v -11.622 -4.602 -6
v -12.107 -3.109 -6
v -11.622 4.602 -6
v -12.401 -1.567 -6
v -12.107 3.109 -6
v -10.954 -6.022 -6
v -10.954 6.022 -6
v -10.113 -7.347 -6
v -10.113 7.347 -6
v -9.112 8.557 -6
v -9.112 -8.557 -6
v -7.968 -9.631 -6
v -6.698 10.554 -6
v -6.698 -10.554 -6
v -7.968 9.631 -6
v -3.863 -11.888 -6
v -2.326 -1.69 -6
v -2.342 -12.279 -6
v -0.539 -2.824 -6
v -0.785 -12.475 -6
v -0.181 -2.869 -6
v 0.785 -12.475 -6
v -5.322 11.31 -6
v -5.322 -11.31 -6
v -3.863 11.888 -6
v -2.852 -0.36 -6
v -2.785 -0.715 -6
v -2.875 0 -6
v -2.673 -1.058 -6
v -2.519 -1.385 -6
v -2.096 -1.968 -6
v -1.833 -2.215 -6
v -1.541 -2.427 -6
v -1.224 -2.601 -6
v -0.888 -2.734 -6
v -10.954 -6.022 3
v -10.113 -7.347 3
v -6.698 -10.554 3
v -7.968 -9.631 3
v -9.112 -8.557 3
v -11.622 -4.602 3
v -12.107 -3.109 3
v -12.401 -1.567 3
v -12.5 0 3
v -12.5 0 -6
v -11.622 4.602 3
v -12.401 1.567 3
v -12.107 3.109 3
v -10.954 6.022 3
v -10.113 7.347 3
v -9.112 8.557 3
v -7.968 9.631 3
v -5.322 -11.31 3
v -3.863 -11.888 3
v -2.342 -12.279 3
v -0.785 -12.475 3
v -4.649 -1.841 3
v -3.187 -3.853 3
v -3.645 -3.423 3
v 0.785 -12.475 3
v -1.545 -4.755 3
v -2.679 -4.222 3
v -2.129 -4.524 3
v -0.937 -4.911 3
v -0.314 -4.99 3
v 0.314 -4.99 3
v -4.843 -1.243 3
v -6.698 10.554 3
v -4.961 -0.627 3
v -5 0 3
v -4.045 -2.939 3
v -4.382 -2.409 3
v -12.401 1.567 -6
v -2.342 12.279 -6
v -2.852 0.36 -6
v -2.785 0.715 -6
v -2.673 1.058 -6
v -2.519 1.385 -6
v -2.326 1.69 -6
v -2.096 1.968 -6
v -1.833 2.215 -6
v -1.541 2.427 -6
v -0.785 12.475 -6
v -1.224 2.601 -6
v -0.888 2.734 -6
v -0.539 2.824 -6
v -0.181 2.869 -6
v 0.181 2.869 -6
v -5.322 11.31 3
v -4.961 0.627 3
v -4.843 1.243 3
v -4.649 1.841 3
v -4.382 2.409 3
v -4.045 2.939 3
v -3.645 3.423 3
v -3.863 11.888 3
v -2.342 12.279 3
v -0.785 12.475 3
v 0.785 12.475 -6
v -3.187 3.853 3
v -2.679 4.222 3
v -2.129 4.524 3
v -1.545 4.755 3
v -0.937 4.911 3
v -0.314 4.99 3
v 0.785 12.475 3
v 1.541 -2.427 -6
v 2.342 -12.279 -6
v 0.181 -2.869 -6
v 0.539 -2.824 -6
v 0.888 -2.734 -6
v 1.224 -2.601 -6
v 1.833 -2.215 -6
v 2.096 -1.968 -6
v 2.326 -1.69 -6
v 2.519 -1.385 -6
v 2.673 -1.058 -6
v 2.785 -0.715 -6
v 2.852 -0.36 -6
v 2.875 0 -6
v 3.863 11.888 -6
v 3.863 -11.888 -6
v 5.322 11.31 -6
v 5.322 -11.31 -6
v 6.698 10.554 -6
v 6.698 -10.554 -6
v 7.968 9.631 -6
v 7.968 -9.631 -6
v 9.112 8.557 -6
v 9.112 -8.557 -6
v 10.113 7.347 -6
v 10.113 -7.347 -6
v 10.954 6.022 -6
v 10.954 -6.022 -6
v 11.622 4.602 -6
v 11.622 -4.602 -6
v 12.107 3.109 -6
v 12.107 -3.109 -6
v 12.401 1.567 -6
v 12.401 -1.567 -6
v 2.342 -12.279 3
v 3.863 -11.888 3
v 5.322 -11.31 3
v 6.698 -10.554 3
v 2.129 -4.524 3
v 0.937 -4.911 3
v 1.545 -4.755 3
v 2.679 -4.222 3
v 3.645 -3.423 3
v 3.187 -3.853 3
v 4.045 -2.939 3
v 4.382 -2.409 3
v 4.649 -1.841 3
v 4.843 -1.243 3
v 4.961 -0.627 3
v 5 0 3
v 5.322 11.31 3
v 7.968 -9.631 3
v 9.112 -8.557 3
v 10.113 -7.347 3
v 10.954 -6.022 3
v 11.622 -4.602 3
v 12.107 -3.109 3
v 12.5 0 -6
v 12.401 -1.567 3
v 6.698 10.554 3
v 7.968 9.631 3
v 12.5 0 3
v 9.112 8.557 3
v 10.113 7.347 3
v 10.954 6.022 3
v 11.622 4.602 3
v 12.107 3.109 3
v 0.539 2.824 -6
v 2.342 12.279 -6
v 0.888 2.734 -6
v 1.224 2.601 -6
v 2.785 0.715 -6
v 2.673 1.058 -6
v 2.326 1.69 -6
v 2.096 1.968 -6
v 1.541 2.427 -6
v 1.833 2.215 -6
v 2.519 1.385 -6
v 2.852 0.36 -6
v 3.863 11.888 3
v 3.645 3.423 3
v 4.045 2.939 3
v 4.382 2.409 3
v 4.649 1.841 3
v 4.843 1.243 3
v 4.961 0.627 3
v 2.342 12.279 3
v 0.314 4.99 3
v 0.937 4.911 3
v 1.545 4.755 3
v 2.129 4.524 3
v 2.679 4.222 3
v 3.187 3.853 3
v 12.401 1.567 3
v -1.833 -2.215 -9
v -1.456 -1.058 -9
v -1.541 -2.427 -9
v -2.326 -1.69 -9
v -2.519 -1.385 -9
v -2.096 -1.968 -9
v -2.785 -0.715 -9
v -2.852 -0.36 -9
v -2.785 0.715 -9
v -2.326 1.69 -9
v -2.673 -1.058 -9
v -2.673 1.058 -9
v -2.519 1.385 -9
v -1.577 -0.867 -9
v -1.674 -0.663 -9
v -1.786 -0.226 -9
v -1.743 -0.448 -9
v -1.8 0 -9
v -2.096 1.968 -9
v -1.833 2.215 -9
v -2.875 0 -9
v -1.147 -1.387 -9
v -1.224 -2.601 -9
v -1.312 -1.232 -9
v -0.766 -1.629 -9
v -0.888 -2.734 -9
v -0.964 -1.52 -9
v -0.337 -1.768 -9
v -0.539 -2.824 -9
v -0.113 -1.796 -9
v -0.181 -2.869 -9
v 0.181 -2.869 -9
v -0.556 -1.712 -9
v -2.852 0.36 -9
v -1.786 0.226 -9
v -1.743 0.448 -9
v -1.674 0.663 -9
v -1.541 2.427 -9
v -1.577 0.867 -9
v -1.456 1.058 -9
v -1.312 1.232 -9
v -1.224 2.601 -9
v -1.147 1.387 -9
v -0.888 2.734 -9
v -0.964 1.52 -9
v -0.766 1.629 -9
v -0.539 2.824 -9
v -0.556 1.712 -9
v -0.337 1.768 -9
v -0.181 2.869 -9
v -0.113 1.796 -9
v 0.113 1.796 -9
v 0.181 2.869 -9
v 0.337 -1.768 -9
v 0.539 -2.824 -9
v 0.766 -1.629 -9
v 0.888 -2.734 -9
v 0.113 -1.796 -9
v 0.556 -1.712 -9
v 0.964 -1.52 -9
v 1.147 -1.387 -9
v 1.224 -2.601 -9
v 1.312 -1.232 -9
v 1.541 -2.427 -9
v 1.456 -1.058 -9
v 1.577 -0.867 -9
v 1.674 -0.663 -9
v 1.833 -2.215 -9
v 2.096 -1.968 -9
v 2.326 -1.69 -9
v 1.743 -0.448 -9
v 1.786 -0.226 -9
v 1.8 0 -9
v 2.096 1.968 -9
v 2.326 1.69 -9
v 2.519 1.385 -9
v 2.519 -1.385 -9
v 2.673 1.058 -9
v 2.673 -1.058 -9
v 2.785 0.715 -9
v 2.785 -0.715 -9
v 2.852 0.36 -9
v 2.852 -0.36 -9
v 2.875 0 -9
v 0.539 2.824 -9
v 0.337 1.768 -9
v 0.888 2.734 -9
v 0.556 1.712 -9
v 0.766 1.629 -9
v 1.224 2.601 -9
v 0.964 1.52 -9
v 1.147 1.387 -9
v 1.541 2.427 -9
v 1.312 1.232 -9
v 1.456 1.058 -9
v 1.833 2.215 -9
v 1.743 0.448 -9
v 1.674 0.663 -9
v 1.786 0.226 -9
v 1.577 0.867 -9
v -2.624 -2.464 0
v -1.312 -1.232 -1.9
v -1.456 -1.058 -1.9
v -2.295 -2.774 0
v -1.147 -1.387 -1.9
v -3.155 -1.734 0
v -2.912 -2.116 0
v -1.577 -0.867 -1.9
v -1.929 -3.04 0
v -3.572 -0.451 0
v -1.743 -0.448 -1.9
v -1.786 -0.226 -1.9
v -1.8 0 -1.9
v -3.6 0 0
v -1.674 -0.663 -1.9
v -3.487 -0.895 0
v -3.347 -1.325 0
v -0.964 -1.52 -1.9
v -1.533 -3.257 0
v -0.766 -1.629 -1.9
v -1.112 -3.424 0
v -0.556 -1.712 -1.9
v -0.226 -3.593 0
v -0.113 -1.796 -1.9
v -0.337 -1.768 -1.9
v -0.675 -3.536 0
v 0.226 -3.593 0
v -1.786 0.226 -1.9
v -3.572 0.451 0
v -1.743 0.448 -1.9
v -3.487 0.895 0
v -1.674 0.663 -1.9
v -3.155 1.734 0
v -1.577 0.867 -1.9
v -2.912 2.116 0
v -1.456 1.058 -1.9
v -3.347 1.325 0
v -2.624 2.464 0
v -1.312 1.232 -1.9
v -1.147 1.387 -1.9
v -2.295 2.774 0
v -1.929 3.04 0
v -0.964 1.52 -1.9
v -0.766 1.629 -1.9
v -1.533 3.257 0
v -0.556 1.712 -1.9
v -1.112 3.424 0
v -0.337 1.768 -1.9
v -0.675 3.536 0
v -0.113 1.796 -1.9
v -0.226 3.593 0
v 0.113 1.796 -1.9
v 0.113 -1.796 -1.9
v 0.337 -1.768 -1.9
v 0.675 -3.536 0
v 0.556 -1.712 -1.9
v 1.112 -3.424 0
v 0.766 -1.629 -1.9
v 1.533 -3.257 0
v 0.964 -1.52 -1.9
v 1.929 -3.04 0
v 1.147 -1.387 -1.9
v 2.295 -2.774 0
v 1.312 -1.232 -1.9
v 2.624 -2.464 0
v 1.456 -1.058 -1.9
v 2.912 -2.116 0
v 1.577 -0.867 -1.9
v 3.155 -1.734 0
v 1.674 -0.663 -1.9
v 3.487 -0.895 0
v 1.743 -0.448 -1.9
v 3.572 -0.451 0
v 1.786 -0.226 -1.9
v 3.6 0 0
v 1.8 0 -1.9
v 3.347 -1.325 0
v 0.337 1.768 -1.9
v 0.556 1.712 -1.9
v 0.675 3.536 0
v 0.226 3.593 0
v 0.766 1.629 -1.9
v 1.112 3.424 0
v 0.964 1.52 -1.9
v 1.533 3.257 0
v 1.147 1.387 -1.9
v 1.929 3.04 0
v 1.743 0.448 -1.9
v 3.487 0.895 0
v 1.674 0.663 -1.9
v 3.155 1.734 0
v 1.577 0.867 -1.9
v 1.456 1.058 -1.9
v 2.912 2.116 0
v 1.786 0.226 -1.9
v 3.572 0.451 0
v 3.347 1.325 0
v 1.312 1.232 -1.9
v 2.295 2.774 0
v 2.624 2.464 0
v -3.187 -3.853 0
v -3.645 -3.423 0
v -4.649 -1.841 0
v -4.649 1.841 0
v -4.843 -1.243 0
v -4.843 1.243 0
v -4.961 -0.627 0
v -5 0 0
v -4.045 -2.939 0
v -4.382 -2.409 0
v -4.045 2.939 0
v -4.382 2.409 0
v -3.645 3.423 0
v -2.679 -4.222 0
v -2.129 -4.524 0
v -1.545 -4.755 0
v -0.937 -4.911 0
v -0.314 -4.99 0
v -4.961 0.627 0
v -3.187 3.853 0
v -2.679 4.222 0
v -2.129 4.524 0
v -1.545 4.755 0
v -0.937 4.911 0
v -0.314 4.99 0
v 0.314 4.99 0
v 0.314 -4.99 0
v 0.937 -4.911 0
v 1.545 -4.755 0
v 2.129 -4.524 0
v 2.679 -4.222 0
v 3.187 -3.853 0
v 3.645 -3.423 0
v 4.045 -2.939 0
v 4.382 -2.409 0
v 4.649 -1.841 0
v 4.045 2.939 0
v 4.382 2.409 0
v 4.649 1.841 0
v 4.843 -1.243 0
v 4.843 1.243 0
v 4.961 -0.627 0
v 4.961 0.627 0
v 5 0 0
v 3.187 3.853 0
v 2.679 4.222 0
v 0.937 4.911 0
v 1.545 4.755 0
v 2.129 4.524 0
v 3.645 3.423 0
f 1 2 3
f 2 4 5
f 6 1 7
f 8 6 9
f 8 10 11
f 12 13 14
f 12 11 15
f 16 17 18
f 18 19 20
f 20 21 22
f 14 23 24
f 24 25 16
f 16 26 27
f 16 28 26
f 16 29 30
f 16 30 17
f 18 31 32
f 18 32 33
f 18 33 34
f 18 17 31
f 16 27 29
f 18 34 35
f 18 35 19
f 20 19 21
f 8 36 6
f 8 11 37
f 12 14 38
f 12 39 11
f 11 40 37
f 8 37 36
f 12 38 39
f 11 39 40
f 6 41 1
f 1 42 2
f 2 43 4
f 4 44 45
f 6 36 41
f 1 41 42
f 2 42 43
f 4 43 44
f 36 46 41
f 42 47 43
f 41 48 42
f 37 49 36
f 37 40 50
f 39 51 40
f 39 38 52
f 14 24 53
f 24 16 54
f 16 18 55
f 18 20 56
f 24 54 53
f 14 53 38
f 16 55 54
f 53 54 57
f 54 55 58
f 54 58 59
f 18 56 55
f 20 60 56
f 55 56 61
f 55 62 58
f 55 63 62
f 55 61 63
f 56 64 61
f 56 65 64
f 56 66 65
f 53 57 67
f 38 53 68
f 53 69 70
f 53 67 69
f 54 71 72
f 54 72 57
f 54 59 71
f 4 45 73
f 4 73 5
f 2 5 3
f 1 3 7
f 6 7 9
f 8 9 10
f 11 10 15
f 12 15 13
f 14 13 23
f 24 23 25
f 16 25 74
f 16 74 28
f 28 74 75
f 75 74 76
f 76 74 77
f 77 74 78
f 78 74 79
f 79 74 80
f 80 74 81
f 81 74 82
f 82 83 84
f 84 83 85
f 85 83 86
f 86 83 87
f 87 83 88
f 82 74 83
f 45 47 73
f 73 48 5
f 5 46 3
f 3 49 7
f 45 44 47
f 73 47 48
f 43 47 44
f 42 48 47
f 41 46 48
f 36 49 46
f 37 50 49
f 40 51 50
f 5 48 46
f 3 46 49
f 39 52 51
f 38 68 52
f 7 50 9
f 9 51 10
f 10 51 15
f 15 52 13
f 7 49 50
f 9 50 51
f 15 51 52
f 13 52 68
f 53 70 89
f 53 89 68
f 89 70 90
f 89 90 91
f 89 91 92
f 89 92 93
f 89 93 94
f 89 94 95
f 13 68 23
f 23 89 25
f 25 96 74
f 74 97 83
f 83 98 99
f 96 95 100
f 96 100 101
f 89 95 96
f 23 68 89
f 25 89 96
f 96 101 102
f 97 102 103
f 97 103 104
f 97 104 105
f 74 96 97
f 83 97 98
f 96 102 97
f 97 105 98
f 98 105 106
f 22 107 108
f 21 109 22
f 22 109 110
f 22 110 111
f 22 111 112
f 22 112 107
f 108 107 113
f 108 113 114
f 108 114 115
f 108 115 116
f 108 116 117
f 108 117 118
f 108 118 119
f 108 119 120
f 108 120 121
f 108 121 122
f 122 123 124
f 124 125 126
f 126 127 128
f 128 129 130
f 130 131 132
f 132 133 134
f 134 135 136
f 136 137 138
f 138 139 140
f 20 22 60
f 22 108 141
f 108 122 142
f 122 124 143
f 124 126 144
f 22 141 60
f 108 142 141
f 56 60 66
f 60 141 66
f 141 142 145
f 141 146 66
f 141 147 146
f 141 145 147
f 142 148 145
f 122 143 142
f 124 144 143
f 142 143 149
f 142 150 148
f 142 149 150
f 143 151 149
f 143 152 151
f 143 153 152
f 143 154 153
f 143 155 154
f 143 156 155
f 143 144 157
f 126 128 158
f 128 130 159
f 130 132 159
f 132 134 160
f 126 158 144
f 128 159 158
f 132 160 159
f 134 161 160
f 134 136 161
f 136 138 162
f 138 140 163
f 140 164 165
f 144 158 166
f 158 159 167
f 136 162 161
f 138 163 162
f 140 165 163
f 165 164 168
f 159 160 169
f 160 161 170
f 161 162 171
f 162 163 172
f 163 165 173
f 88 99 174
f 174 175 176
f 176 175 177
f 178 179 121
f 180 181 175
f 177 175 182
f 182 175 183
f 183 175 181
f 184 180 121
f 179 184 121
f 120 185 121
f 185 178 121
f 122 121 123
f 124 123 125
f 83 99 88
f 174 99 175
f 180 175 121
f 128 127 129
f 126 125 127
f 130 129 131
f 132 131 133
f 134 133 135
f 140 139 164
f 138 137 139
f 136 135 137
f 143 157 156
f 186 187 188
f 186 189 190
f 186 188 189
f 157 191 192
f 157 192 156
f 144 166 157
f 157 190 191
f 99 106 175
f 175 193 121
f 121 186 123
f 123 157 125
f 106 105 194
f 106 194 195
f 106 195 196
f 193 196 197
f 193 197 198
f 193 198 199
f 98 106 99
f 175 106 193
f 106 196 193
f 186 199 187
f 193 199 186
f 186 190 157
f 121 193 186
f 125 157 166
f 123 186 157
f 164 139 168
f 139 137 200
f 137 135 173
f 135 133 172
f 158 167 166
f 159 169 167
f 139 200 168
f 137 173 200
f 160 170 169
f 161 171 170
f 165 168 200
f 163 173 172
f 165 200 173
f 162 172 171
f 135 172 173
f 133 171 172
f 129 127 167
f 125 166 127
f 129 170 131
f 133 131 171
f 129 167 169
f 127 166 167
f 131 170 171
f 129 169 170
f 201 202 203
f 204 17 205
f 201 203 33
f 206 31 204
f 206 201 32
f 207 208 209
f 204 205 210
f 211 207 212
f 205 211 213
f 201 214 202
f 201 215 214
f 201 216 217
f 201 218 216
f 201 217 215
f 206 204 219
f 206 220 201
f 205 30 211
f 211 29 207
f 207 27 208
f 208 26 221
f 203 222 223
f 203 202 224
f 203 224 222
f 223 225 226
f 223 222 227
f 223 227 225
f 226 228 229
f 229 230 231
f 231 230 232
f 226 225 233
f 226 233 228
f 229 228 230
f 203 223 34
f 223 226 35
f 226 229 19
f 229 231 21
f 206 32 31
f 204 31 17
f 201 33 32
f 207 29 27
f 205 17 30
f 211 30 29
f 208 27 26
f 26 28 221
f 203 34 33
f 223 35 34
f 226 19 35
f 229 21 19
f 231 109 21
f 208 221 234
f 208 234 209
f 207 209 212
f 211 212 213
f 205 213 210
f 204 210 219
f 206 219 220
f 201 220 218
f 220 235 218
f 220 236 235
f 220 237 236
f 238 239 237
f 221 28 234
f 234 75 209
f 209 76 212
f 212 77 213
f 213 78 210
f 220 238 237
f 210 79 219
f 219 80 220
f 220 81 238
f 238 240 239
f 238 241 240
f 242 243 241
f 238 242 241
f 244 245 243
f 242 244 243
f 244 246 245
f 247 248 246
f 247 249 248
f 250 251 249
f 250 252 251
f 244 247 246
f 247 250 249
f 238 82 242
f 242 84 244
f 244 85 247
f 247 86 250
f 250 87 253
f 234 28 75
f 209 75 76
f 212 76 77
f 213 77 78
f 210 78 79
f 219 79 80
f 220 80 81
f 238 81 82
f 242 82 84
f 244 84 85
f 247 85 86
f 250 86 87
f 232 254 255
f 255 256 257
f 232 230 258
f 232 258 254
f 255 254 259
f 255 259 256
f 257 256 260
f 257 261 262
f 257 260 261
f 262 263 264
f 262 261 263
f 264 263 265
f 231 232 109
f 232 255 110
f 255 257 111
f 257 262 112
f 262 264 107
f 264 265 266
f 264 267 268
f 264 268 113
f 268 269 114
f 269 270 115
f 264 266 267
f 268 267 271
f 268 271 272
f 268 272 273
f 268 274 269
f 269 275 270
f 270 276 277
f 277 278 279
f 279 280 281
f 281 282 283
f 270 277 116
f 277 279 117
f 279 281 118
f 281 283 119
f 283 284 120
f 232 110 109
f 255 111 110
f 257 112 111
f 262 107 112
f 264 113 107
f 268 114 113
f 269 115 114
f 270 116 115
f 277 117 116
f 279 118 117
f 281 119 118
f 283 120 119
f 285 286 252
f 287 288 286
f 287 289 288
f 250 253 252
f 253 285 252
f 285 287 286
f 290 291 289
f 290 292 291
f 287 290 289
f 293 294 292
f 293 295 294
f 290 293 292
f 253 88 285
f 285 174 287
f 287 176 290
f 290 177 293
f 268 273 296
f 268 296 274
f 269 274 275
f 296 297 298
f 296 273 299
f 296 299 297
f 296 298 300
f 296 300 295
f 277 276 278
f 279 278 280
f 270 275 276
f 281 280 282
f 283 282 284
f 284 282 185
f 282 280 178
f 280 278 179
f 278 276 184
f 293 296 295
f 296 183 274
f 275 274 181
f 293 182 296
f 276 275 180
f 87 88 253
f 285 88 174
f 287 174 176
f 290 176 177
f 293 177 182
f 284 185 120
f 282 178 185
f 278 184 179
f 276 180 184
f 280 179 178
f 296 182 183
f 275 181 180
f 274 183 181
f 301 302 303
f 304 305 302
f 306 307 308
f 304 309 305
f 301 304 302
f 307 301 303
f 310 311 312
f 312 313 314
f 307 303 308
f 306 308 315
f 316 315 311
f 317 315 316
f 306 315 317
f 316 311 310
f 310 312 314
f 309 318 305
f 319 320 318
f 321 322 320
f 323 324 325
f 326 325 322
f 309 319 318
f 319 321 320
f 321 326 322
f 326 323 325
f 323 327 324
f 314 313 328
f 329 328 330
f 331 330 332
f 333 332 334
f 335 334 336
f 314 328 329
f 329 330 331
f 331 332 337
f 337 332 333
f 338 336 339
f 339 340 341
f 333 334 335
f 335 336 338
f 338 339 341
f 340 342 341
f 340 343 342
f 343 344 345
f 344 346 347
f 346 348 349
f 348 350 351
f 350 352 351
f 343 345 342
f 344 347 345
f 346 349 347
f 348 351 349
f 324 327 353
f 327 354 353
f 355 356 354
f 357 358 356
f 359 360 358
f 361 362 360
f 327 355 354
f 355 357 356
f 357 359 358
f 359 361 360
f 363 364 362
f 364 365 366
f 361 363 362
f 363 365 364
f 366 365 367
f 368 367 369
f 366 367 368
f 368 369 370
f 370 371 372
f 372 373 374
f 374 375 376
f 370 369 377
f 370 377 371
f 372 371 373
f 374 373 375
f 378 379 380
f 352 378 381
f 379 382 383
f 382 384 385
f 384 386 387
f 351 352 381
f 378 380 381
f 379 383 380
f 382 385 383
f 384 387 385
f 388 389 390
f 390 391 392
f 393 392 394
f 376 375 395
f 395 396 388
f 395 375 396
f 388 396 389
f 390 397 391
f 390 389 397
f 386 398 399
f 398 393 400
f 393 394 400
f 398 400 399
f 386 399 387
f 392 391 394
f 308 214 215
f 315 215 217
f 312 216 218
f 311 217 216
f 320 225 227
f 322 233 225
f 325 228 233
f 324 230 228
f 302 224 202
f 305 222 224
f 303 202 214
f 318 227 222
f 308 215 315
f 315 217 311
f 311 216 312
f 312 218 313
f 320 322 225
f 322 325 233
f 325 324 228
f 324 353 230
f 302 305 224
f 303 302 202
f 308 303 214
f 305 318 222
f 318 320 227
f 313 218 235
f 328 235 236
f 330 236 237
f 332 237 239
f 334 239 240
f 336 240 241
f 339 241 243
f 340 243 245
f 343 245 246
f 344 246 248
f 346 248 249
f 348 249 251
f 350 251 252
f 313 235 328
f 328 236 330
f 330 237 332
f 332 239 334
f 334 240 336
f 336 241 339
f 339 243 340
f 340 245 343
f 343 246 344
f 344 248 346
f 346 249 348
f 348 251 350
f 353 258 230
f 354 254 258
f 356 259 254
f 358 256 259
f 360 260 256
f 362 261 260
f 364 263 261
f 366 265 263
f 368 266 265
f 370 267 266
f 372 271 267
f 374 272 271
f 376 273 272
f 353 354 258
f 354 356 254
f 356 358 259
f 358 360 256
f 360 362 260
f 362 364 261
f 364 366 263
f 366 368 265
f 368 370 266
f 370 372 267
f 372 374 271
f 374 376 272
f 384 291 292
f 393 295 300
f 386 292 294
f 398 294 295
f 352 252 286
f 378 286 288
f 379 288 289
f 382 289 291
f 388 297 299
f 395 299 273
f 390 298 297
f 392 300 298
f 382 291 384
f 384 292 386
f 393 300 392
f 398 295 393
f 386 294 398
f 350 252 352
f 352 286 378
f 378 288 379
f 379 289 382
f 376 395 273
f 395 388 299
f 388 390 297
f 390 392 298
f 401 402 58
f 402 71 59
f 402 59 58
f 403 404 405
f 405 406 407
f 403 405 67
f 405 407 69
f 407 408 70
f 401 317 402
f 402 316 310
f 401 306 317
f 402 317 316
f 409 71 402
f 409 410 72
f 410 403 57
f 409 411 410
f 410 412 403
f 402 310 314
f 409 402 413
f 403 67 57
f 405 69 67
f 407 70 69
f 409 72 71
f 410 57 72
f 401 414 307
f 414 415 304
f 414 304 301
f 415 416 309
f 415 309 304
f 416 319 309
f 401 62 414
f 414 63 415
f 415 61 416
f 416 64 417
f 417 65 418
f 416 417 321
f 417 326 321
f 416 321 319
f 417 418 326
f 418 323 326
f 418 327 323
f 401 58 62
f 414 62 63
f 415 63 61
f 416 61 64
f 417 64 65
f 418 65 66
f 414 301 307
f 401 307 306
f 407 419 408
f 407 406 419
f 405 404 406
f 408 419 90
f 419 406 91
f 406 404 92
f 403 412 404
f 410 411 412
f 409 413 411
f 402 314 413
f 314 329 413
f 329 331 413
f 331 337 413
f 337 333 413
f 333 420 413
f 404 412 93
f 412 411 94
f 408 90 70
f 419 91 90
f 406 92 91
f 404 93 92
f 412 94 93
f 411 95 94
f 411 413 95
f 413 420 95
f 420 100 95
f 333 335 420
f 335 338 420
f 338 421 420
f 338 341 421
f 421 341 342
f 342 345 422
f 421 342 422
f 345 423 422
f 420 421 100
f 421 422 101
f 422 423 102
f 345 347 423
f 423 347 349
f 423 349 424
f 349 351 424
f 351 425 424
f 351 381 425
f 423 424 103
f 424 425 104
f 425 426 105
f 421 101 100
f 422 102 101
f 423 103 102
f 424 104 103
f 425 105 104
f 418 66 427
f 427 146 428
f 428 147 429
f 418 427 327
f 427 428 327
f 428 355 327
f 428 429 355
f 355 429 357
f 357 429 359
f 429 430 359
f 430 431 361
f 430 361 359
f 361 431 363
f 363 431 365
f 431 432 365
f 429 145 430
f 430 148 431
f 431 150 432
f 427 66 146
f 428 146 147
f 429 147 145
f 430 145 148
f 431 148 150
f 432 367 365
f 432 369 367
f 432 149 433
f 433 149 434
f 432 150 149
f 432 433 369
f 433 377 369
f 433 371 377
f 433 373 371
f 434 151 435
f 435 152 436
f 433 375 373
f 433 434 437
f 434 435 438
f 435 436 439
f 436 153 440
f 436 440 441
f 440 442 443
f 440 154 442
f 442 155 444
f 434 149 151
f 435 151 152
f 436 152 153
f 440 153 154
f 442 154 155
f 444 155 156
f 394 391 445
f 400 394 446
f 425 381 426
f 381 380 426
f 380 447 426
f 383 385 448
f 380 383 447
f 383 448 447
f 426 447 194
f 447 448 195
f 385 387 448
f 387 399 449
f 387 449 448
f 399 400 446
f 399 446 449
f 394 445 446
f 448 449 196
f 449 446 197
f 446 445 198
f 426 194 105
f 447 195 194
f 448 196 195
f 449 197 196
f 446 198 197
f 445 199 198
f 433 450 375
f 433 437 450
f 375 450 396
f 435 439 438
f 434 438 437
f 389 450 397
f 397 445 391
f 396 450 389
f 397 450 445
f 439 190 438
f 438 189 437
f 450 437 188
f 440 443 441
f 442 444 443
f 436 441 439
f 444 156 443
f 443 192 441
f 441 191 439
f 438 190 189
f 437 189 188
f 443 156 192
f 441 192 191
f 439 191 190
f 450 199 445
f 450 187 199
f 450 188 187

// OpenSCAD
$fn = 50;

difference() {
	union() {
		translate(v = [0, 0, -6.0]) {
			cylinder(h = 9, r = 12.5);
		}
		#translate(v = [0, 0, -9.0]) {
			cylinder(h = 9, r = 2.875);
		}
	}
	union() {
		translate(v = [0, 0, 0]) {
			rotate(a = [0, 0, 0]) {
				difference() {
					union() {
						translate(v = [0, 0, -9.0]) {
							cylinder(h = 9, r = 1.5);
						}
						translate(v = [0, 0, -1.9]) {
							cylinder(h = 1.9, r1 = 1.8, r2 = 3.6);
						}
						translate(v = [0, 0, -9.0]) {
							cylinder(h = 9, r = 1.8);
						}
						translate(v = [0, 0, -9.0]) {
							cylinder(h = 9, r = 1.5);
						}
					}
					union();
				}
			}
		}
		#cylinder(h = 3, r = 5.0);
	}
}
